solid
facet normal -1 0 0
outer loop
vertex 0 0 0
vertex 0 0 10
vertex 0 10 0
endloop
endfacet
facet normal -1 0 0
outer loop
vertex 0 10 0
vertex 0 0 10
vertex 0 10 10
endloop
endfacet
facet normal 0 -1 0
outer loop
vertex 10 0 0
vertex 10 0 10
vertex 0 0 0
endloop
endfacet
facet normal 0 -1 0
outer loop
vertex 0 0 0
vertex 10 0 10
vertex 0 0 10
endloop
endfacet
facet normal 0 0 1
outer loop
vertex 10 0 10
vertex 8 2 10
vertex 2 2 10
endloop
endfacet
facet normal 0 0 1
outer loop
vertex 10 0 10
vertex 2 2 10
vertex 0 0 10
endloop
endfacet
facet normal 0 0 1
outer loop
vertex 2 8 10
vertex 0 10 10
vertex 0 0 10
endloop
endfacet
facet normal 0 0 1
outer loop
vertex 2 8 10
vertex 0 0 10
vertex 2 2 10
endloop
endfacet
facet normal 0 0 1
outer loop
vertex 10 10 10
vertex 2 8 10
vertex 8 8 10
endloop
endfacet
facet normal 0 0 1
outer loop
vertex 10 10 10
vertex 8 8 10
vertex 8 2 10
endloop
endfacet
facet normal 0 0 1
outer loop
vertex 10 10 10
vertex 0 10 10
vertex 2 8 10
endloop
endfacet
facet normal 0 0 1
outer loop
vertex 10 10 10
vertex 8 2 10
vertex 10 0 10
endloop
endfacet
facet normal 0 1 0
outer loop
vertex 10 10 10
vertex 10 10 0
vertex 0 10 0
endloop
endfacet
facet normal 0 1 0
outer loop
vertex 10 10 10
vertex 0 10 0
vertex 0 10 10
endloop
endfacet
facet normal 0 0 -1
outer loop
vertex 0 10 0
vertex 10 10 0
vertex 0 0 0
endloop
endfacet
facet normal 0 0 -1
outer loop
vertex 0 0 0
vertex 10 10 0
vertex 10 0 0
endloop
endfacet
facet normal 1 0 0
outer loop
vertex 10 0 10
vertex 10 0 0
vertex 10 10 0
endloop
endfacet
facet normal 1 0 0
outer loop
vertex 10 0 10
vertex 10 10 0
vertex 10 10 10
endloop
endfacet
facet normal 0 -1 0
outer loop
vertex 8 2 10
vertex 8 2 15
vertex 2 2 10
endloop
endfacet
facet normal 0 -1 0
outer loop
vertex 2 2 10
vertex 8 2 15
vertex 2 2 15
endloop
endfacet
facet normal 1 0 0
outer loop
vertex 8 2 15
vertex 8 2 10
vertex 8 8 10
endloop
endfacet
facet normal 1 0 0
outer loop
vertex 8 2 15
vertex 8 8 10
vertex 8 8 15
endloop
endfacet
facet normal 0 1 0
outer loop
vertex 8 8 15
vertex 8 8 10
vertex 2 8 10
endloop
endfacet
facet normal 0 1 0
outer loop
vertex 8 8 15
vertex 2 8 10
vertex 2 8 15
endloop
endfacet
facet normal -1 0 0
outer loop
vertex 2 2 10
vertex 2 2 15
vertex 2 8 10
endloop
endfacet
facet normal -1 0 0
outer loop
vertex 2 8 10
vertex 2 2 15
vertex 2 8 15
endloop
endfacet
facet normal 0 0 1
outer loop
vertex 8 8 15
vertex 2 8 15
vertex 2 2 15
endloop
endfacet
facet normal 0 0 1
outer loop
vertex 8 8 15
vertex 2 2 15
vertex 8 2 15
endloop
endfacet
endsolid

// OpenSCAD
module s0()
{
 translate([-0.0, 0.0, 0.0])
 rotate(a = -90.0, v = [0.0, 1.0, -0.0])
 translate([-103.07764064044152, -103.07764064044152, -206.15528128088303])
 cube([206.15528128088303, 206.15528128088303, 206.15528128088303]);
}

module s2()
{
 translate([0.0, 0.0, 10.0])
 translate([-103.07764064044152, -103.07764064044152, -206.15528128088303])
 cube([206.15528128088303, 206.15528128088303, 206.15528128088303]);
}

module s3()
{
 translate([0.0, 0.0, 10.0])
 translate([-103.07764064044152, -103.07764064044152, 0.0])
 cube([206.15528128088303, 206.15528128088303, 206.15528128088303]);
}

module s4()
{
 translate([0.0, -0.0, 0.0])
 rotate(a = -90.0, v = [-1.0, 0.0, 0.0])
 translate([-103.07764064044152, -103.07764064044152, -206.15528128088303])
 cube([206.15528128088303, 206.15528128088303, 206.15528128088303]);
}

module s6()
{
 translate([0.0, 0.0, -0.0])
 translate([-103.07764064044152, -103.07764064044152, 0.0])
 cube([206.15528128088303, 206.15528128088303, 206.15528128088303]);
}

module s8()
{
 translate([10.0, 0.0, 0.0])
 rotate(a = -90.0, v = [0.0, -1.0, 0.0])
 translate([-103.07764064044152, -103.07764064044152, -206.15528128088303])
 cube([206.15528128088303, 206.15528128088303, 206.15528128088303]);
}

module s10()
{
 translate([0.0, 10.0, 0.0])
 rotate(a = -90.0, v = [1.0, 0.0, 0.0])
 translate([-103.07764064044152, -103.07764064044152, -206.15528128088303])
 cube([206.15528128088303, 206.15528128088303, 206.15528128088303]);
}

module s12()
{
 translate([0.0, 8.0, 0.0])
 rotate(a = -90.0, v = [1.0, 0.0, 0.0])
 translate([-103.07764064044152, -103.07764064044152, -206.15528128088303])
 cube([206.15528128088303, 206.15528128088303, 206.15528128088303]);
}

module s14()
{
 translate([2.0, -0.0, -0.0])
 rotate(a = -90.0, v = [0.0, 1.0, -0.0])
 translate([-103.07764064044152, -103.07764064044152, -206.15528128088303])
 cube([206.15528128088303, 206.15528128088303, 206.15528128088303]);
}

module s16()
{
 translate([0.0, 0.0, 15.0])
 translate([-103.07764064044152, -103.07764064044152, -206.15528128088303])
 cube([206.15528128088303, 206.15528128088303, 206.15528128088303]);
}

module s18()
{
 translate([-0.0, 2.0, -0.0])
 rotate(a = -90.0, v = [-1.0, 0.0, 0.0])
 translate([-103.07764064044152, -103.07764064044152, -206.15528128088303])
 cube([206.15528128088303, 206.15528128088303, 206.15528128088303]);
}

module s20()
{
 translate([8.0, 0.0, 0.0])
 rotate(a = -90.0, v = [0.0, -1.0, 0.0])
 translate([-103.07764064044152, -103.07764064044152, -206.15528128088303])
 cube([206.15528128088303, 206.15528128088303, 206.15528128088303]);
}

module s23()
{
 translate([-0.0, -3.4482763, 1.3793105])
 rotate(a = -68.19859976473145, v = [-0.9284767508506775, 0.0, 0.0])
 translate([-103.07764064044152, -103.07764064044152, -206.15528128088303])
 cube([206.15528128088303, 206.15528128088303, 206.15528128088303]);
}

module s24()
{
 translate([-3.4482763, 0.0, 1.3793106])
 rotate(a = -68.198590569306, v = [0.0, 0.9284766912460327, -0.0])
 translate([-103.07764064044152, -103.07764064044152, -206.15528128088303])
 cube([206.15528128088303, 206.15528128088303, 206.15528128088303]);
}

module s26()
{
 translate([0.0, 12.068966, 4.8275867])
 rotate(a = -68.198590569306, v = [0.9284766912460327, 0.0, 0.0])
 translate([-103.07764064044152, -103.07764064044152, -206.15528128088303])
 cube([206.15528128088303, 206.15528128088303, 206.15528128088303]);
}

module s28()
{
 translate([12.068968, 0.0, 4.827587])
 rotate(a = -68.19859976473145, v = [0.0, -0.9284767508506775, 0.0])
 translate([-103.07764064044152, -103.07764064044152, -206.15528128088303])
 cube([206.15528128088303, 206.15528128088303, 206.15528128088303]);
}

union(){intersection(){s0();intersection(){s2();intersection(){s4();intersection(){s6();intersection(){s8();intersection(){s10();intersection(){s16();intersection(){s23();intersection(){s24();intersection(){s26();s28();};};};};};};};};};};intersection(){s3();intersection(){s12();intersection(){s14();intersection(){s16();intersection(){s18();s20();};};};};};}
